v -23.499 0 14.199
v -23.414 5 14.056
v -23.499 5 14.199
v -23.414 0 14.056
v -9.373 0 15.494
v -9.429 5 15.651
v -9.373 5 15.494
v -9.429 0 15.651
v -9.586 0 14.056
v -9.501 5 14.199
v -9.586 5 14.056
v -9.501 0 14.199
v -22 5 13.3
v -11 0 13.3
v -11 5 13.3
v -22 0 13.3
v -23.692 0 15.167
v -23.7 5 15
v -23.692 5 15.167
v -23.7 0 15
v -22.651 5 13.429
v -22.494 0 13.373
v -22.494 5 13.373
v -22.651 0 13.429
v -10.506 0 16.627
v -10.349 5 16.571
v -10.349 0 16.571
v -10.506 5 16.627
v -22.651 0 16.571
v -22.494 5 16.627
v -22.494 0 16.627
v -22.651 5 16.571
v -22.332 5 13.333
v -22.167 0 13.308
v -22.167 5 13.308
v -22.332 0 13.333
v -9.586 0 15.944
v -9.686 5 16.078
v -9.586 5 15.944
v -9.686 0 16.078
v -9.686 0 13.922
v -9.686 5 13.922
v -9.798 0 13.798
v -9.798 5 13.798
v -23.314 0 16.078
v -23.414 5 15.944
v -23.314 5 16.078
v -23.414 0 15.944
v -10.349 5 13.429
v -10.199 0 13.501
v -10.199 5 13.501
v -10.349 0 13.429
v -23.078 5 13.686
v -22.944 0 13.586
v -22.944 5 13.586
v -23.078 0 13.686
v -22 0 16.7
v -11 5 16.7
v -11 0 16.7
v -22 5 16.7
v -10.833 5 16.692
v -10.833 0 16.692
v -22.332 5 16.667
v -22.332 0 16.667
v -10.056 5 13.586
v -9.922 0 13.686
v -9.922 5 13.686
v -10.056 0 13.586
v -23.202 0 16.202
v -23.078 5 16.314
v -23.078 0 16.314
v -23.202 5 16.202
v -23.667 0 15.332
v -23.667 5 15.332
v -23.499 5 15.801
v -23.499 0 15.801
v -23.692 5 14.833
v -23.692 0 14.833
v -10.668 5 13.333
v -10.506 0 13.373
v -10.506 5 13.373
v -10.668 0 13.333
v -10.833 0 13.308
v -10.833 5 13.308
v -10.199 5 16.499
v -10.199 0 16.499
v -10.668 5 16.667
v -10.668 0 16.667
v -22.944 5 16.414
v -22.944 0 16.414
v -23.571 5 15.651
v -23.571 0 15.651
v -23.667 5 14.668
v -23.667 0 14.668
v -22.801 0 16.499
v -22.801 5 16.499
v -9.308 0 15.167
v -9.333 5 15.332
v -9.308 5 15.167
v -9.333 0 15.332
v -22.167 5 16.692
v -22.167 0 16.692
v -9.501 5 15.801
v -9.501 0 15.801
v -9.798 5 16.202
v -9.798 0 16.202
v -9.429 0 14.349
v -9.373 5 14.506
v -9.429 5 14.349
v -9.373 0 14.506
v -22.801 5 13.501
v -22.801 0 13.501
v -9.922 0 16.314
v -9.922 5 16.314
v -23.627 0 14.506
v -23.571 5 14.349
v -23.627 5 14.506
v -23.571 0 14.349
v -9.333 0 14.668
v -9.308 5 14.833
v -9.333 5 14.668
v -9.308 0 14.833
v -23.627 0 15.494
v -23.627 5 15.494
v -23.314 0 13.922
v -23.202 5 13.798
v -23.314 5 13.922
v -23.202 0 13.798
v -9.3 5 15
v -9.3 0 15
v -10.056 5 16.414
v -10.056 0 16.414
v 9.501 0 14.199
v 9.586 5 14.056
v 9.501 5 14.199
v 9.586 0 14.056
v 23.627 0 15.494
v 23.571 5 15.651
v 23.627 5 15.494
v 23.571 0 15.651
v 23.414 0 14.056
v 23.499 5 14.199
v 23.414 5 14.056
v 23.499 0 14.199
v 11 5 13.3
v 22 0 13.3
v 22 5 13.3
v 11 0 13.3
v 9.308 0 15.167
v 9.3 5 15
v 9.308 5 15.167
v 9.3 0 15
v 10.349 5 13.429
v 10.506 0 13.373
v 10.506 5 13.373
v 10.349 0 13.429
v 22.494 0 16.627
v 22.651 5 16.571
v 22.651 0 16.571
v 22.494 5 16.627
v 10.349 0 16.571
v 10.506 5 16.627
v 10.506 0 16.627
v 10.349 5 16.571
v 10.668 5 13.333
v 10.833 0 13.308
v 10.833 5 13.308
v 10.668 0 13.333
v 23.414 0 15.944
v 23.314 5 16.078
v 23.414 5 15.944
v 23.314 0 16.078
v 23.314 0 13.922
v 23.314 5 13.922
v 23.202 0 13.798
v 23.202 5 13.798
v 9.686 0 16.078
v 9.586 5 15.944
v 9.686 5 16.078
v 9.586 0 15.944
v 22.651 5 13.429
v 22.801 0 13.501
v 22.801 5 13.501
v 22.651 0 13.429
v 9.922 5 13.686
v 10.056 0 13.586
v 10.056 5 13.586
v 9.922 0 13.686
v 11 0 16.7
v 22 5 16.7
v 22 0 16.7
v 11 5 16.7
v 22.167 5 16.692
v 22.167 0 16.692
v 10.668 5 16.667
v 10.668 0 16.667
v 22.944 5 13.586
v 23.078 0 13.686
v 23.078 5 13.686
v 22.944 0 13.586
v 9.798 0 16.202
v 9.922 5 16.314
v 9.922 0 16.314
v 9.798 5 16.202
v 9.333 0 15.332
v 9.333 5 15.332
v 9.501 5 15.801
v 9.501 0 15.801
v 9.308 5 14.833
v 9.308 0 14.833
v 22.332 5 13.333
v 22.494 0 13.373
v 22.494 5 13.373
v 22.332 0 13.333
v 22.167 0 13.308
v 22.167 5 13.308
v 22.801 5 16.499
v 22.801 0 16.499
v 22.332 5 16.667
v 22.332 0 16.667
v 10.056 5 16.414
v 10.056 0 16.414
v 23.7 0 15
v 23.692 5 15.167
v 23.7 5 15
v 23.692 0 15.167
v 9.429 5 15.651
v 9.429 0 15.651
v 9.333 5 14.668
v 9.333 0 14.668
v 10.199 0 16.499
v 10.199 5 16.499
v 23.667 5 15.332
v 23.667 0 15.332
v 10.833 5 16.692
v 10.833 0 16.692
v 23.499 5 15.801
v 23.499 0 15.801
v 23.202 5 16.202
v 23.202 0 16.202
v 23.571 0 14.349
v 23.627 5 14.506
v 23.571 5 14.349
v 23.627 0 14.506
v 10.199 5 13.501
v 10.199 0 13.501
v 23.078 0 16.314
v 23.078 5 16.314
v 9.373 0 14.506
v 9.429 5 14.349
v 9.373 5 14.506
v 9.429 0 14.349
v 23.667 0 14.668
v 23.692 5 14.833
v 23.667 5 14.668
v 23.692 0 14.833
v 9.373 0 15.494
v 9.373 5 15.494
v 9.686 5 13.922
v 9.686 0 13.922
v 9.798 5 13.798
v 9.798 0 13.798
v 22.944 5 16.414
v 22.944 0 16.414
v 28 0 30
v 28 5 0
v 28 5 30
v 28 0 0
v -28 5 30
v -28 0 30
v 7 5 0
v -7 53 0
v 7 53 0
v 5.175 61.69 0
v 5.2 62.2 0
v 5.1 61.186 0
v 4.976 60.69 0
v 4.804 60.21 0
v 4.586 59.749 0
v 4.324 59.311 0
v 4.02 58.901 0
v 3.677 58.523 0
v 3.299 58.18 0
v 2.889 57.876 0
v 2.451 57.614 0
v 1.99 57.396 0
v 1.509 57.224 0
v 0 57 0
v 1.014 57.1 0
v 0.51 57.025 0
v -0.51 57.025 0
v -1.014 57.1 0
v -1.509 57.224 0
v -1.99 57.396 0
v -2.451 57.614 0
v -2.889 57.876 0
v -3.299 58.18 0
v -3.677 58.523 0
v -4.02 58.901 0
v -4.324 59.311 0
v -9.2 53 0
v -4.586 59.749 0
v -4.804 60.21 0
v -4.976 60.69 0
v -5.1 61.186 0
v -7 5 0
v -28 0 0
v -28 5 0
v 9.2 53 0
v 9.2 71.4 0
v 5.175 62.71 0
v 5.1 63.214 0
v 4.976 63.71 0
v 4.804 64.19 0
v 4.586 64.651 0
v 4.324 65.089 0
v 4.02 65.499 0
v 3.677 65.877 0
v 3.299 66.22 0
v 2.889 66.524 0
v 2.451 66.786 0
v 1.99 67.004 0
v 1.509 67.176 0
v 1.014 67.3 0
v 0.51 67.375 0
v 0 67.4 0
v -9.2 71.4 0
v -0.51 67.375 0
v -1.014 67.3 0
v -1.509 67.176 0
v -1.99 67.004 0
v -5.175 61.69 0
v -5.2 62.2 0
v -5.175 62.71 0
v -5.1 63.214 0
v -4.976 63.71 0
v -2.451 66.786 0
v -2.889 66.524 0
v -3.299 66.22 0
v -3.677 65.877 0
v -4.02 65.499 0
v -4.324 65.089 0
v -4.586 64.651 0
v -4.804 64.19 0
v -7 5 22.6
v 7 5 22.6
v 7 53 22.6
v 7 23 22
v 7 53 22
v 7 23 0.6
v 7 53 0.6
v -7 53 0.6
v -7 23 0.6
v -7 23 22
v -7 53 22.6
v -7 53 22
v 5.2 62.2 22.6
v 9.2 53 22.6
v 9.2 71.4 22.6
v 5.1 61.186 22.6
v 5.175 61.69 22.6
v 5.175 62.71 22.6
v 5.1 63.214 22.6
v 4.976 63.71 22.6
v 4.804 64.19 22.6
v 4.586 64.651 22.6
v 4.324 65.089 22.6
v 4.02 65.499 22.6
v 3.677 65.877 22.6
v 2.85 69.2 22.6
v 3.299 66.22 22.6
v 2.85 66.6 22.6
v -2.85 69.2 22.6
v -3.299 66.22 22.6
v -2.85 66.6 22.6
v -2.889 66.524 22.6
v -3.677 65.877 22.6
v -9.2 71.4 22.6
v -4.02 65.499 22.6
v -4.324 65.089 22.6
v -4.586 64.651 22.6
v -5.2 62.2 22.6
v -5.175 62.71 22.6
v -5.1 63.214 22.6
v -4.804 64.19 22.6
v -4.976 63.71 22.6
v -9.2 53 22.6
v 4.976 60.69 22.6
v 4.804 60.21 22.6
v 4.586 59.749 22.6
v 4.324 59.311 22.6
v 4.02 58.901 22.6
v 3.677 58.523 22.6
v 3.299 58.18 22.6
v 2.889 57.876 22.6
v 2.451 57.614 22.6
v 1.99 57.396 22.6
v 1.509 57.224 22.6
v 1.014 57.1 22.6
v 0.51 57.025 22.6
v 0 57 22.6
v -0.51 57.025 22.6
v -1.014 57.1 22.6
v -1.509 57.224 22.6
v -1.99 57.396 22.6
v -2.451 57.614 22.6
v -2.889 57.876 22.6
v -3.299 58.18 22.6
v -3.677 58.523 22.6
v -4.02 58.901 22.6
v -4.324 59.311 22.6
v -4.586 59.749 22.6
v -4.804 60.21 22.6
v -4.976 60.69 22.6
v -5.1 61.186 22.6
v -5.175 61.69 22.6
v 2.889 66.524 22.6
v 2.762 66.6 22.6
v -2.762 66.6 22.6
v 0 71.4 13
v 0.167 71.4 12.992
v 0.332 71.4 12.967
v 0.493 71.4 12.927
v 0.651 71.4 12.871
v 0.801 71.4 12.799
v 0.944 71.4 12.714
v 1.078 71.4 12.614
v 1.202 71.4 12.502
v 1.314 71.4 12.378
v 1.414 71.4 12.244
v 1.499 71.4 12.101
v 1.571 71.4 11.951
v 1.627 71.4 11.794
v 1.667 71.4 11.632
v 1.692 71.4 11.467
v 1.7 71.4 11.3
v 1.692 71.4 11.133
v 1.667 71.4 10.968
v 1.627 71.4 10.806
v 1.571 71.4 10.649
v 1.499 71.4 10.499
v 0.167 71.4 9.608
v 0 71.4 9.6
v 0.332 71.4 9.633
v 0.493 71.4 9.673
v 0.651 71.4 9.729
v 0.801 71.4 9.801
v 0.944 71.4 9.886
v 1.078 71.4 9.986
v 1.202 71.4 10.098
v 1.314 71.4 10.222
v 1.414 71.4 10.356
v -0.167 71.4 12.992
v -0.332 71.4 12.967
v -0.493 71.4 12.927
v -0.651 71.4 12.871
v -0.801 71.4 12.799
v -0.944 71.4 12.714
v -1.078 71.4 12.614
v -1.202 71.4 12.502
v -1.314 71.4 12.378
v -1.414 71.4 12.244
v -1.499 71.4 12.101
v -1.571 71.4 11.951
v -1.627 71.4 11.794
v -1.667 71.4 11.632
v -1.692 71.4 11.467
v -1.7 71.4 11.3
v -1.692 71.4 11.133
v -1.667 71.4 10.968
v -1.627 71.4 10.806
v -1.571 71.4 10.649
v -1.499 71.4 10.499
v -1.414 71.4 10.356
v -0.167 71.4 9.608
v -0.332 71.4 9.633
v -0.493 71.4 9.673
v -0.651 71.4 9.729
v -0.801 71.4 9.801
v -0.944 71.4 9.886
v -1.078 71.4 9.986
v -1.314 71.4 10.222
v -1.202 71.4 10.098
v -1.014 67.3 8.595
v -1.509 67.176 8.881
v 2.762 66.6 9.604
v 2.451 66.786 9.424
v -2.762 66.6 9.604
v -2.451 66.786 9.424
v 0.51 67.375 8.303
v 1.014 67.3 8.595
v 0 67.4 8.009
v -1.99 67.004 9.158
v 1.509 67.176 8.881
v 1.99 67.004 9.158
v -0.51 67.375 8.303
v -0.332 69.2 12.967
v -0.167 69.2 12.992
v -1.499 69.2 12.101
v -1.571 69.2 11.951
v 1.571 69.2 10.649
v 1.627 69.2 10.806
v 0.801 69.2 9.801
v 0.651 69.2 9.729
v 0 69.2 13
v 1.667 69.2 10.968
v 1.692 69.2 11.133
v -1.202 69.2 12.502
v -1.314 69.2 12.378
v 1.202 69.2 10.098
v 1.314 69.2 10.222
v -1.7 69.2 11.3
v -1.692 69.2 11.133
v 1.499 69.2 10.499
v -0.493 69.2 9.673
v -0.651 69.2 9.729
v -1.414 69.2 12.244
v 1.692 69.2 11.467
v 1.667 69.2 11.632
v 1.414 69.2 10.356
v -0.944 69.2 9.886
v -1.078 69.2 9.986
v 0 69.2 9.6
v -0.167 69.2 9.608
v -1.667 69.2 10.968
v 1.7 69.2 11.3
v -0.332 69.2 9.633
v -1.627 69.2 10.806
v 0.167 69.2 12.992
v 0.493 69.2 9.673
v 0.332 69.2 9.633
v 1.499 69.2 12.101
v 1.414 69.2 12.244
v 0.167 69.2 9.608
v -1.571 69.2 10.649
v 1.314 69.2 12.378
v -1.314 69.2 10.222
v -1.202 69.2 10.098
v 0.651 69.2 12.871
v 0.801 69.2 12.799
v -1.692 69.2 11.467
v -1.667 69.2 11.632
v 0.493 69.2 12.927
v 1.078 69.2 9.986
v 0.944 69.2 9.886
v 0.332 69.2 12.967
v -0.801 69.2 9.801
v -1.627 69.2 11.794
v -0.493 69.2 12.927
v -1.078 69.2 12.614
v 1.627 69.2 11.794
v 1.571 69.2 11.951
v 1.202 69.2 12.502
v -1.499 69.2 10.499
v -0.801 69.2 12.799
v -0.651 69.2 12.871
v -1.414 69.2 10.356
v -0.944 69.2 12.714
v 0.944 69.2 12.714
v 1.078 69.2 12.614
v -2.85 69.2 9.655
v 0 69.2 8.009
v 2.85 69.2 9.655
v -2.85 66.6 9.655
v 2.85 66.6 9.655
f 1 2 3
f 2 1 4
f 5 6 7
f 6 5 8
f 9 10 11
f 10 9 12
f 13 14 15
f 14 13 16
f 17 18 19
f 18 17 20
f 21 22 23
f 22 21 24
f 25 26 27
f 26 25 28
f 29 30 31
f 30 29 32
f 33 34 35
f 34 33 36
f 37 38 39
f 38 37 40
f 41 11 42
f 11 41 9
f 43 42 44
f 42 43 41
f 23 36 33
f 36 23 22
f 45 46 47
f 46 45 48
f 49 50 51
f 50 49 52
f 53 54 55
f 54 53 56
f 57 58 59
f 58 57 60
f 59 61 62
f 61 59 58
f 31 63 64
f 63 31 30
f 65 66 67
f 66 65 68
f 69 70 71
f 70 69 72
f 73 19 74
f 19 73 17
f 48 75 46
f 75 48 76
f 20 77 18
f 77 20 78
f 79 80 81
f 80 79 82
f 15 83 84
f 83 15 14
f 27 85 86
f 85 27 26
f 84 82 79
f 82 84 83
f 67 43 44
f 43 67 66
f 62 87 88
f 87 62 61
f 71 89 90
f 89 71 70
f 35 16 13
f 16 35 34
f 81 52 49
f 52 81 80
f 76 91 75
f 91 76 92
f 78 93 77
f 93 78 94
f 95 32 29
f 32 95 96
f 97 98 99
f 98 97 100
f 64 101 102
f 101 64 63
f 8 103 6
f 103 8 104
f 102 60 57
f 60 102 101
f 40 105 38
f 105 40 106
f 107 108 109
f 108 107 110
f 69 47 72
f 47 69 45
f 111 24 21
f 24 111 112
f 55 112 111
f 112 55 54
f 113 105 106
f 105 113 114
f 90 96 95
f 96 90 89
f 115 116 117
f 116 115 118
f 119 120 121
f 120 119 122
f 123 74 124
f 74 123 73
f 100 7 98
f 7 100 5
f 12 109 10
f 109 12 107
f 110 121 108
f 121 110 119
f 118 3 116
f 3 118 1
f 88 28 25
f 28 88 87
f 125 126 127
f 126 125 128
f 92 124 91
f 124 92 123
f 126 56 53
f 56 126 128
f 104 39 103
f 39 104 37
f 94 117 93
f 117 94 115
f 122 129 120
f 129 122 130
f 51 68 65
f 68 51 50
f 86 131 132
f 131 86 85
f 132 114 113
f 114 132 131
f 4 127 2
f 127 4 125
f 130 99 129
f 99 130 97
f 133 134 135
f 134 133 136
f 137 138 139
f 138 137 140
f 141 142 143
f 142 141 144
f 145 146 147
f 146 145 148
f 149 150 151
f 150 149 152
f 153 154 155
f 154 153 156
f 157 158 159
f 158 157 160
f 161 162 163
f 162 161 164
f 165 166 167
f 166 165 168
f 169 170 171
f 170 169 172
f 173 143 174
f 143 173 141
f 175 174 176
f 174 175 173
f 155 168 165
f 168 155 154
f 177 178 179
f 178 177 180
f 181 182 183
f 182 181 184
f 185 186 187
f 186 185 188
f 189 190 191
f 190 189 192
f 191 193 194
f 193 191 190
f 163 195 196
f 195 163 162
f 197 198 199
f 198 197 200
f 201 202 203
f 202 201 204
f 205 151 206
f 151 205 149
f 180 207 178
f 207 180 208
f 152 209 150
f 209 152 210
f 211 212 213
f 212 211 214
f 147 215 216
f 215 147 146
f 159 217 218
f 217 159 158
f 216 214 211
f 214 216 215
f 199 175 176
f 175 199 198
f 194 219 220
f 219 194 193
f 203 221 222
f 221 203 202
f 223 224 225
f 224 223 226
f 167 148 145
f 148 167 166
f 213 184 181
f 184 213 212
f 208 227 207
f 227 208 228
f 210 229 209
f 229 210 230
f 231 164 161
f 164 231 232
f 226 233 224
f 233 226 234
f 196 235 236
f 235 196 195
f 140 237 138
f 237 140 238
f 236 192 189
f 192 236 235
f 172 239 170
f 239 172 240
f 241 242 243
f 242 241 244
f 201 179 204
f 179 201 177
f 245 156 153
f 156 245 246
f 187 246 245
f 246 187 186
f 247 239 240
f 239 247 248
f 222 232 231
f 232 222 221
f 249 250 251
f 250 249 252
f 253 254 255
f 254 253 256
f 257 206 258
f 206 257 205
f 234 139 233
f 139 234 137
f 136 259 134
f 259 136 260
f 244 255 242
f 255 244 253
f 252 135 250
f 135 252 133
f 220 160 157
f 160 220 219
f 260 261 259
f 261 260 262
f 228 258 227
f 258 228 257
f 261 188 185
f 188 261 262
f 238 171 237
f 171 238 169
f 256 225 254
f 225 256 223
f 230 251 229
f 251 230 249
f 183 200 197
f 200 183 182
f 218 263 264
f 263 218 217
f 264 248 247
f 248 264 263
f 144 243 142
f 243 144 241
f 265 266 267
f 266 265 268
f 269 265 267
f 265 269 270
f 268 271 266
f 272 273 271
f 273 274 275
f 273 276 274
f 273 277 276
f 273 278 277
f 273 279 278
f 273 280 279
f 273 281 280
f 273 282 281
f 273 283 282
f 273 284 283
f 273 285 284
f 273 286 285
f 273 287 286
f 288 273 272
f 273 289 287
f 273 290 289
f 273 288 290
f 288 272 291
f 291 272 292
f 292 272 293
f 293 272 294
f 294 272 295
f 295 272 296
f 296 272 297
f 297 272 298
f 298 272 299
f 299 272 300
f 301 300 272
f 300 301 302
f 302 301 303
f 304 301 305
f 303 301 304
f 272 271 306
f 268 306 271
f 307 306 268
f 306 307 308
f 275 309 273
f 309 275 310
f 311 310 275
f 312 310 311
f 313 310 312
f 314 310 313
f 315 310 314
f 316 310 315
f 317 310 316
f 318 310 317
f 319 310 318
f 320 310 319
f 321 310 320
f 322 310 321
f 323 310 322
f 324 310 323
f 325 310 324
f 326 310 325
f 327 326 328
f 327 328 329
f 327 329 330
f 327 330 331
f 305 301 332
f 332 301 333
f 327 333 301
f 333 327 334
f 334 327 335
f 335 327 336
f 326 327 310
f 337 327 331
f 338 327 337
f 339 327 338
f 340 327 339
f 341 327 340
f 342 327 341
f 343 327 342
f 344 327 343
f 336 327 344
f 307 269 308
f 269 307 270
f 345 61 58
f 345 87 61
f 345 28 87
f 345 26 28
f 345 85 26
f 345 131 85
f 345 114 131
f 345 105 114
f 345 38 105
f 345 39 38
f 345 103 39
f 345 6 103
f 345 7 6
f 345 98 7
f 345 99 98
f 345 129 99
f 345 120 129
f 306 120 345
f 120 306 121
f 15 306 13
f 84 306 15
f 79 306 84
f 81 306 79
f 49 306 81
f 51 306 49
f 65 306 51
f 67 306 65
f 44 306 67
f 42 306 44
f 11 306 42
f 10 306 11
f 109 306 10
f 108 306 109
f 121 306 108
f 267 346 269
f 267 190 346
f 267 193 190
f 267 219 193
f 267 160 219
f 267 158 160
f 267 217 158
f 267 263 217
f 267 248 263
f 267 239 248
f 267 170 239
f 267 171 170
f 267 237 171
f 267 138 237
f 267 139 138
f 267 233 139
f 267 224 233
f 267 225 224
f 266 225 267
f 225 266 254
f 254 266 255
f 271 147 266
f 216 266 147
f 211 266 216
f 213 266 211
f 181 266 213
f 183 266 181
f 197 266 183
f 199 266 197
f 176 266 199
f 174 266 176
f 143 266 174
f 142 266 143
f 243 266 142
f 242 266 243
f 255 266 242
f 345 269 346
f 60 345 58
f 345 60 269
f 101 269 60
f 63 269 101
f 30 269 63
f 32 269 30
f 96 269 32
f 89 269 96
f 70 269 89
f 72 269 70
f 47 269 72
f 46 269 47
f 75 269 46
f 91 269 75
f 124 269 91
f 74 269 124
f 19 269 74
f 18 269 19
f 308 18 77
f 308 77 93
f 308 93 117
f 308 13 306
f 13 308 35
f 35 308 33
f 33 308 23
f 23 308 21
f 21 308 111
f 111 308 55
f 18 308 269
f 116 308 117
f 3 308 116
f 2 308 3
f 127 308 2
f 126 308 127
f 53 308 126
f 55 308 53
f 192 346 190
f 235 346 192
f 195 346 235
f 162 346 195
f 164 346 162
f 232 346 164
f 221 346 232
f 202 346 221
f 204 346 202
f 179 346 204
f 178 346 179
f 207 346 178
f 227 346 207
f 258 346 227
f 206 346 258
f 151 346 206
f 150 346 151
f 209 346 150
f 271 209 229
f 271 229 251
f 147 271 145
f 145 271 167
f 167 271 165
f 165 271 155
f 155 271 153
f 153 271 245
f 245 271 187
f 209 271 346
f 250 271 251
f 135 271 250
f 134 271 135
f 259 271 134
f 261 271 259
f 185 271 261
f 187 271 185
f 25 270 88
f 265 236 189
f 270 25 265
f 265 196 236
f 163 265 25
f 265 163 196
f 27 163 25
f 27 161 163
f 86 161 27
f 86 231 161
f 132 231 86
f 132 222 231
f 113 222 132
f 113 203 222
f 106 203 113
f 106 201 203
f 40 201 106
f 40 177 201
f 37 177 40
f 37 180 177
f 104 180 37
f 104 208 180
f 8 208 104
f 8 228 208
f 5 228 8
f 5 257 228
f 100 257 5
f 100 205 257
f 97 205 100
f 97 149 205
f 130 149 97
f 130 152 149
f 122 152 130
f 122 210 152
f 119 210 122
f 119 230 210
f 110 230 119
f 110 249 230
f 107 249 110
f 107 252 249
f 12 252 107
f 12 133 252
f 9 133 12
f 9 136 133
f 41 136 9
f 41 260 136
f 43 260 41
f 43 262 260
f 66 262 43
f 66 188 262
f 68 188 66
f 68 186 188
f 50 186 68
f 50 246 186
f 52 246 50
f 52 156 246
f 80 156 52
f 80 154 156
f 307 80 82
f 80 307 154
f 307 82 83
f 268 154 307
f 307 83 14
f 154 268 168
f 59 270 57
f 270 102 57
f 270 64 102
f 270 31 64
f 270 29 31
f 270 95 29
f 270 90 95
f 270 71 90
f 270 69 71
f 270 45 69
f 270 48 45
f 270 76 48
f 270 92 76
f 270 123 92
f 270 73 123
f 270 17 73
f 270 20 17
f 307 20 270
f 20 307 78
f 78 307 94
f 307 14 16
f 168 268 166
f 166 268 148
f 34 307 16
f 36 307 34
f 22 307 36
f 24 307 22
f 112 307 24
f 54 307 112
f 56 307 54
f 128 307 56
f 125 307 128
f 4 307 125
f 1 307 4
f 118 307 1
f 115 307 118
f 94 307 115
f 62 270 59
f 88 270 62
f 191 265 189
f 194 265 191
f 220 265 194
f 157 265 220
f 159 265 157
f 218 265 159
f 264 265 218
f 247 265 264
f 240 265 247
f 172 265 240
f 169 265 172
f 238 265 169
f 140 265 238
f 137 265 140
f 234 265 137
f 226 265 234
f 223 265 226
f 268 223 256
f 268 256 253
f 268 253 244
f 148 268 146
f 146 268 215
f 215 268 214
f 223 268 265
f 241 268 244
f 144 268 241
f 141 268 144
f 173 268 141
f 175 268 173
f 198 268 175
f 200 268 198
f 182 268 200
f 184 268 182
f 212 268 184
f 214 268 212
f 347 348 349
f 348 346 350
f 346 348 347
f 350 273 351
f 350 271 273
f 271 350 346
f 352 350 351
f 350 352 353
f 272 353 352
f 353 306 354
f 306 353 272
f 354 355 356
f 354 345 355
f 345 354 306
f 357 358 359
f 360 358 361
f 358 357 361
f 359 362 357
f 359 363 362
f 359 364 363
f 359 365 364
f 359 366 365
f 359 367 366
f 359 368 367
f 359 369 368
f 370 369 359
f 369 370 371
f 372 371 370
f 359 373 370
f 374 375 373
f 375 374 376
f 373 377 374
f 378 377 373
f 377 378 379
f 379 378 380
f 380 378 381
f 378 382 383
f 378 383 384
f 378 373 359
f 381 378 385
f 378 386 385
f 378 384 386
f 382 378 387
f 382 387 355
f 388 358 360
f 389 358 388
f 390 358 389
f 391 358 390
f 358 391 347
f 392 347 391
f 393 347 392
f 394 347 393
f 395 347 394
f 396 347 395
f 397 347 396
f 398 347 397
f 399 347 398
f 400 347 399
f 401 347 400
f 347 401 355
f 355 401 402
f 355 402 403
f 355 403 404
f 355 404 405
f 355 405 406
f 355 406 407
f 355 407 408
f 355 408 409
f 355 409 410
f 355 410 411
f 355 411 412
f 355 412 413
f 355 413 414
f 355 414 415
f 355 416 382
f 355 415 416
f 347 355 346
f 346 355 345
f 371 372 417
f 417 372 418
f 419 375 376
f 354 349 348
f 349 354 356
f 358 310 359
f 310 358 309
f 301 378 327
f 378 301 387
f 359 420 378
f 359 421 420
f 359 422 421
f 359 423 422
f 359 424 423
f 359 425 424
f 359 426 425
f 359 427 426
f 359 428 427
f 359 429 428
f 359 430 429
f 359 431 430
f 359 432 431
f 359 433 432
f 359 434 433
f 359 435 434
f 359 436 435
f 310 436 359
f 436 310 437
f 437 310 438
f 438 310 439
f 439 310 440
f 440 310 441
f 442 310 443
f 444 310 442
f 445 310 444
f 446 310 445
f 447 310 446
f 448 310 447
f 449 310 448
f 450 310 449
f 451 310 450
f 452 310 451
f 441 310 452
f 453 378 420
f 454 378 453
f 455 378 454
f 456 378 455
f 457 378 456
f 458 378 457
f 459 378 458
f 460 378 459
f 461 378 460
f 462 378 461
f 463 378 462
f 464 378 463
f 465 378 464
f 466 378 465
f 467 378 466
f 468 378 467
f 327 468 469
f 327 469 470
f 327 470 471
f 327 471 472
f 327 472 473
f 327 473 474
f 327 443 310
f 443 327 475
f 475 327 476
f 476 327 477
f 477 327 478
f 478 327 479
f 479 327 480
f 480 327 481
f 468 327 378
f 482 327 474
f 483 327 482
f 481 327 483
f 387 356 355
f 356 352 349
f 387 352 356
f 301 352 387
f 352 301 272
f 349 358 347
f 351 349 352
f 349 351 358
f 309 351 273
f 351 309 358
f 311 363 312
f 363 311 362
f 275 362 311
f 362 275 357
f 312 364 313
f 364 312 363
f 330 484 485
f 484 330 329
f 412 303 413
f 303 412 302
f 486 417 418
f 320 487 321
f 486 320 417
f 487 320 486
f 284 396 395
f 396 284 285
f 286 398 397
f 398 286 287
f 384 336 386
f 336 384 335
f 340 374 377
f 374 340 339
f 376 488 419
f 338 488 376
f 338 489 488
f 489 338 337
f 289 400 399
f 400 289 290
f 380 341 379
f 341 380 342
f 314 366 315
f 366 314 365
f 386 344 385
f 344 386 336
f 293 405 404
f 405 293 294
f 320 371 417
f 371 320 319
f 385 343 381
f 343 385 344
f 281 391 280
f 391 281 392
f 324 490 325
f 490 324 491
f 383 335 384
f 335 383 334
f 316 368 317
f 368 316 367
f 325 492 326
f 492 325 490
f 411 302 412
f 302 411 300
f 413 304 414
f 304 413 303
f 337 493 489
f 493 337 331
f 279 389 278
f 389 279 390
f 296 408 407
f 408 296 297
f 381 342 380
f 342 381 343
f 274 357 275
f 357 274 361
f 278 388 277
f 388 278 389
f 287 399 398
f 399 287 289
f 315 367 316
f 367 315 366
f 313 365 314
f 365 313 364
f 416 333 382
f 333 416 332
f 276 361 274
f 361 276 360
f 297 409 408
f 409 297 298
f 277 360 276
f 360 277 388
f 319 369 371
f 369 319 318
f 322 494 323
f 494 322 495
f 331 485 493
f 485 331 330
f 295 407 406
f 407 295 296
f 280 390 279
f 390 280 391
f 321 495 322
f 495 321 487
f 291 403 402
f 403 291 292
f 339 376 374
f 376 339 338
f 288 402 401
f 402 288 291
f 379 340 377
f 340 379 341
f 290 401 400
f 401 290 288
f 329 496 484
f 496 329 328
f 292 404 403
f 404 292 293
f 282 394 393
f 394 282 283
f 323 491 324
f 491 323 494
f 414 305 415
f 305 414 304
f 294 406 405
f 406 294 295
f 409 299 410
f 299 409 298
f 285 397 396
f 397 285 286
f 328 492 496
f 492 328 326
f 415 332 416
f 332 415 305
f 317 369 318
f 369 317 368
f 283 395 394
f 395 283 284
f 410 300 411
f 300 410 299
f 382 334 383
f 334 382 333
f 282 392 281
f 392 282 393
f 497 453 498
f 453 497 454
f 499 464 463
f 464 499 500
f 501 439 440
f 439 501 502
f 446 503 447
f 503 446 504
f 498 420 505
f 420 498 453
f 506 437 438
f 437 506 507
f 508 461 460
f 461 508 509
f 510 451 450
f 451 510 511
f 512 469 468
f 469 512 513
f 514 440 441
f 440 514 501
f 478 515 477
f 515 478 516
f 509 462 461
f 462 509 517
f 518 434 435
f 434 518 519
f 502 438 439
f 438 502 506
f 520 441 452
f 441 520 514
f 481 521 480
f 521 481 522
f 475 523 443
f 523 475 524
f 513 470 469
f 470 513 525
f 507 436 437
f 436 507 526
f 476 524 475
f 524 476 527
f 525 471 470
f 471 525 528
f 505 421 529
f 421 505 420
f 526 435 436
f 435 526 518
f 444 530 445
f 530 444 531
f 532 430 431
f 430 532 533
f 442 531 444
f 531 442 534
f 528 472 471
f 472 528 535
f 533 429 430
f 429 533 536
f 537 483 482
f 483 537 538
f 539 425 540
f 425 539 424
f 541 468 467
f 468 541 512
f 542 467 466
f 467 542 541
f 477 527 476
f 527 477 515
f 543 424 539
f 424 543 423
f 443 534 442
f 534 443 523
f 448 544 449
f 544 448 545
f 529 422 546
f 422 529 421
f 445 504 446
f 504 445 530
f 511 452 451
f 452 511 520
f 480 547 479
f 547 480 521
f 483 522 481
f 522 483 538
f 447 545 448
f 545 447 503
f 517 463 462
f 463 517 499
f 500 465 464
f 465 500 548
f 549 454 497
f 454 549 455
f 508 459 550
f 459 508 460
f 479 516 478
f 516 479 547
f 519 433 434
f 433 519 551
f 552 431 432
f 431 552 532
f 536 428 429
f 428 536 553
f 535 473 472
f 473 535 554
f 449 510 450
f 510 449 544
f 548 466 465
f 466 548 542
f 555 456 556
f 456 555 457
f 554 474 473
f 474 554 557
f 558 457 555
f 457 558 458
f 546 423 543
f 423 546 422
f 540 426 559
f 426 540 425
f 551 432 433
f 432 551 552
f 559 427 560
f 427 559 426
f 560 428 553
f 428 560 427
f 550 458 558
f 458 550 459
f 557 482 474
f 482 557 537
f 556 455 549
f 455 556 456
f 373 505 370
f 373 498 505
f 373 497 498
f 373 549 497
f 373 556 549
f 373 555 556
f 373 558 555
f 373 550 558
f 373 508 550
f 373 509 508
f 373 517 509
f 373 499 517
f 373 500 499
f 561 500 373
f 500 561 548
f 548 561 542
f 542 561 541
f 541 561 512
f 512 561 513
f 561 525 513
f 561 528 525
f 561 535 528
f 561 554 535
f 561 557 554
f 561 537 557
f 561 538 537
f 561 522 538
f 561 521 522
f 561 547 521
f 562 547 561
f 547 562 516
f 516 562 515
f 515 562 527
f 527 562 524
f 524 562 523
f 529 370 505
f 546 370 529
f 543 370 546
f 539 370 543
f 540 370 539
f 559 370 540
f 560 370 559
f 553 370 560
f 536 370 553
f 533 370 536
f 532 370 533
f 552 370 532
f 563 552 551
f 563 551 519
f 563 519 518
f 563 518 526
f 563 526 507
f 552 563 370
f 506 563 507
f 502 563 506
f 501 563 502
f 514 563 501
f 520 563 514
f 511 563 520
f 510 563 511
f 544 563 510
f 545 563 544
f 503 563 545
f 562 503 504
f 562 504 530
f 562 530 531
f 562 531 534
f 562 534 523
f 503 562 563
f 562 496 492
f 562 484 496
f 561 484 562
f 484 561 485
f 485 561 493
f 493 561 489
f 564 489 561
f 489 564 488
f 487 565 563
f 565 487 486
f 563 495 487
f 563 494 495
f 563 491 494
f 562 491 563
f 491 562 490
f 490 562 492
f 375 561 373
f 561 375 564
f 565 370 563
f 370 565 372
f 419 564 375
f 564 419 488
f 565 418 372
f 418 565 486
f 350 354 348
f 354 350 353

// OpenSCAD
// Spring-loaded pen holder for a 3D printer, printed in one piece.
//
// A parallelogram flexure (two thin parallel leaves) lets the pen ride up a
// few millimetres when it touches the paper, so slightly uneven paper or a
// Z a little too low gives even, light pressure instead of a gouge or a skip.
// It is not a crash stop: set z_down with care, a few mm too low will bend it hard.
// No springs, bearings or rods to buy: just two M3 screws to mount it and one
// M3 screw + nut to grip the pen.
//
// Print: as oriented (mount plate standing up), PETG or PLA, 0.2 mm layers,
// 4 walls, no supports. The top leaf bridges 30 mm, which most printers manage;
// slow the bridge speed if yours sags.
//
// Mount: bolt the plate to the toolhead (fan shroud / carriage) with M3
// screws through the slots. The slots take any hole spacing from
// slot_min to slot_max, so measure your two screw holes and they will fit.

/* [Pen] */
pen_d        = 10.0;  // pen barrel diameter where it is clamped (measure it!)
clearance    = 0.4;   // added to pen_d for the bore
/* [Flexure] */
leaf_len     = 30;    // longer = softer
leaf_t       = 0.6;   // thinner = softer. Printed flat, so this is layers: 3 x 0.2 mm.
                      // ~1.5 N (150 g) of pen pressure at 2 mm of travel in PLA.
leaf_w       = 14;    // width of each leaf
leaf_gap     = 22;    // vertical distance between the two leaves
/* [Mount] */
plate_w      = 56;
plate_h      = 30;
plate_t      = 5;
slot_min     = 22;    // smallest screw spacing the slots accept
slot_max     = 44;    // largest
slot_z       = 15;    // height of the slot centreline on the plate
standoff     = 12;    // gap from plate to flexure frame (clears fans, hoses)
/* [Hardware] */
m3           = 3.4;
m3_nut_af    = 5.7;   // across flats, with clearance
m3_nut_t     = 2.6;

$fn = 64;

carrier_d = pen_d + clearance + 8;   // carrier block size around the pen
frame_t   = 6;                       // thickness of the fixed back post
H         = leaf_gap + leaf_t;       // overall height of the flexure

module slot(len, d) {
    hull() {
        translate([-len/2, 0, 0]) cylinder(d = d, h = 50, center = true);
        translate([ len/2, 0, 0]) cylinder(d = d, h = 50, center = true);
    }
}

module mount_plate() {
    difference() {
        translate([-plate_w/2, 0, 0]) cube([plate_w, plate_t, plate_h]);
        // two slots, one each side of centre, so any spacing in range fits
        for (s = [-1, 1])
            translate([s * (slot_min + slot_max) / 4, plate_t/2, slot_z])
                rotate([90, 0, 0]) slot((slot_max - slot_min) / 2, m3);
    }
}

module back_post() {
    // fixed side of the flexure, tied to the plate by a standoff block
    translate([-leaf_w/2, plate_t, 0]) cube([leaf_w, standoff + frame_t, H]);
}

module leaves() {
    y0 = plate_t + standoff + frame_t;
    for (z = [0, leaf_gap])
        translate([-leaf_w/2, y0 - 0.01, z]) cube([leaf_w, leaf_len + 0.02, leaf_t]);
}

module carrier() {
    y0 = plate_t + standoff + frame_t + leaf_len;
    difference() {
        translate([-carrier_d/2, y0, 0]) cube([carrier_d, carrier_d, H]);
        // pen bore, straight through vertically
        translate([0, y0 + carrier_d/2, -1]) cylinder(d = pen_d + clearance, h = H + 2);
        // clamp screw from the front, with a captive nut
        translate([0, y0 + carrier_d/2, H/2]) rotate([-90, 0, 0]) cylinder(d = m3, h = carrier_d);
        translate([0, y0 + carrier_d - 2.2 - m3_nut_t, H/2])
            rotate([-90, 0, 0]) rotate([0, 0, 30]) cylinder(d = m3_nut_af / cos(30), h = m3_nut_t, $fn = 6);
        // let the nut drop in from the top
        translate([-m3_nut_af/2, y0 + carrier_d - 2.2 - m3_nut_t, H/2]) cube([m3_nut_af, m3_nut_t, H]);
    }
}

union() {
    mount_plate();
    back_post();
    leaves();
    carrier();
}
